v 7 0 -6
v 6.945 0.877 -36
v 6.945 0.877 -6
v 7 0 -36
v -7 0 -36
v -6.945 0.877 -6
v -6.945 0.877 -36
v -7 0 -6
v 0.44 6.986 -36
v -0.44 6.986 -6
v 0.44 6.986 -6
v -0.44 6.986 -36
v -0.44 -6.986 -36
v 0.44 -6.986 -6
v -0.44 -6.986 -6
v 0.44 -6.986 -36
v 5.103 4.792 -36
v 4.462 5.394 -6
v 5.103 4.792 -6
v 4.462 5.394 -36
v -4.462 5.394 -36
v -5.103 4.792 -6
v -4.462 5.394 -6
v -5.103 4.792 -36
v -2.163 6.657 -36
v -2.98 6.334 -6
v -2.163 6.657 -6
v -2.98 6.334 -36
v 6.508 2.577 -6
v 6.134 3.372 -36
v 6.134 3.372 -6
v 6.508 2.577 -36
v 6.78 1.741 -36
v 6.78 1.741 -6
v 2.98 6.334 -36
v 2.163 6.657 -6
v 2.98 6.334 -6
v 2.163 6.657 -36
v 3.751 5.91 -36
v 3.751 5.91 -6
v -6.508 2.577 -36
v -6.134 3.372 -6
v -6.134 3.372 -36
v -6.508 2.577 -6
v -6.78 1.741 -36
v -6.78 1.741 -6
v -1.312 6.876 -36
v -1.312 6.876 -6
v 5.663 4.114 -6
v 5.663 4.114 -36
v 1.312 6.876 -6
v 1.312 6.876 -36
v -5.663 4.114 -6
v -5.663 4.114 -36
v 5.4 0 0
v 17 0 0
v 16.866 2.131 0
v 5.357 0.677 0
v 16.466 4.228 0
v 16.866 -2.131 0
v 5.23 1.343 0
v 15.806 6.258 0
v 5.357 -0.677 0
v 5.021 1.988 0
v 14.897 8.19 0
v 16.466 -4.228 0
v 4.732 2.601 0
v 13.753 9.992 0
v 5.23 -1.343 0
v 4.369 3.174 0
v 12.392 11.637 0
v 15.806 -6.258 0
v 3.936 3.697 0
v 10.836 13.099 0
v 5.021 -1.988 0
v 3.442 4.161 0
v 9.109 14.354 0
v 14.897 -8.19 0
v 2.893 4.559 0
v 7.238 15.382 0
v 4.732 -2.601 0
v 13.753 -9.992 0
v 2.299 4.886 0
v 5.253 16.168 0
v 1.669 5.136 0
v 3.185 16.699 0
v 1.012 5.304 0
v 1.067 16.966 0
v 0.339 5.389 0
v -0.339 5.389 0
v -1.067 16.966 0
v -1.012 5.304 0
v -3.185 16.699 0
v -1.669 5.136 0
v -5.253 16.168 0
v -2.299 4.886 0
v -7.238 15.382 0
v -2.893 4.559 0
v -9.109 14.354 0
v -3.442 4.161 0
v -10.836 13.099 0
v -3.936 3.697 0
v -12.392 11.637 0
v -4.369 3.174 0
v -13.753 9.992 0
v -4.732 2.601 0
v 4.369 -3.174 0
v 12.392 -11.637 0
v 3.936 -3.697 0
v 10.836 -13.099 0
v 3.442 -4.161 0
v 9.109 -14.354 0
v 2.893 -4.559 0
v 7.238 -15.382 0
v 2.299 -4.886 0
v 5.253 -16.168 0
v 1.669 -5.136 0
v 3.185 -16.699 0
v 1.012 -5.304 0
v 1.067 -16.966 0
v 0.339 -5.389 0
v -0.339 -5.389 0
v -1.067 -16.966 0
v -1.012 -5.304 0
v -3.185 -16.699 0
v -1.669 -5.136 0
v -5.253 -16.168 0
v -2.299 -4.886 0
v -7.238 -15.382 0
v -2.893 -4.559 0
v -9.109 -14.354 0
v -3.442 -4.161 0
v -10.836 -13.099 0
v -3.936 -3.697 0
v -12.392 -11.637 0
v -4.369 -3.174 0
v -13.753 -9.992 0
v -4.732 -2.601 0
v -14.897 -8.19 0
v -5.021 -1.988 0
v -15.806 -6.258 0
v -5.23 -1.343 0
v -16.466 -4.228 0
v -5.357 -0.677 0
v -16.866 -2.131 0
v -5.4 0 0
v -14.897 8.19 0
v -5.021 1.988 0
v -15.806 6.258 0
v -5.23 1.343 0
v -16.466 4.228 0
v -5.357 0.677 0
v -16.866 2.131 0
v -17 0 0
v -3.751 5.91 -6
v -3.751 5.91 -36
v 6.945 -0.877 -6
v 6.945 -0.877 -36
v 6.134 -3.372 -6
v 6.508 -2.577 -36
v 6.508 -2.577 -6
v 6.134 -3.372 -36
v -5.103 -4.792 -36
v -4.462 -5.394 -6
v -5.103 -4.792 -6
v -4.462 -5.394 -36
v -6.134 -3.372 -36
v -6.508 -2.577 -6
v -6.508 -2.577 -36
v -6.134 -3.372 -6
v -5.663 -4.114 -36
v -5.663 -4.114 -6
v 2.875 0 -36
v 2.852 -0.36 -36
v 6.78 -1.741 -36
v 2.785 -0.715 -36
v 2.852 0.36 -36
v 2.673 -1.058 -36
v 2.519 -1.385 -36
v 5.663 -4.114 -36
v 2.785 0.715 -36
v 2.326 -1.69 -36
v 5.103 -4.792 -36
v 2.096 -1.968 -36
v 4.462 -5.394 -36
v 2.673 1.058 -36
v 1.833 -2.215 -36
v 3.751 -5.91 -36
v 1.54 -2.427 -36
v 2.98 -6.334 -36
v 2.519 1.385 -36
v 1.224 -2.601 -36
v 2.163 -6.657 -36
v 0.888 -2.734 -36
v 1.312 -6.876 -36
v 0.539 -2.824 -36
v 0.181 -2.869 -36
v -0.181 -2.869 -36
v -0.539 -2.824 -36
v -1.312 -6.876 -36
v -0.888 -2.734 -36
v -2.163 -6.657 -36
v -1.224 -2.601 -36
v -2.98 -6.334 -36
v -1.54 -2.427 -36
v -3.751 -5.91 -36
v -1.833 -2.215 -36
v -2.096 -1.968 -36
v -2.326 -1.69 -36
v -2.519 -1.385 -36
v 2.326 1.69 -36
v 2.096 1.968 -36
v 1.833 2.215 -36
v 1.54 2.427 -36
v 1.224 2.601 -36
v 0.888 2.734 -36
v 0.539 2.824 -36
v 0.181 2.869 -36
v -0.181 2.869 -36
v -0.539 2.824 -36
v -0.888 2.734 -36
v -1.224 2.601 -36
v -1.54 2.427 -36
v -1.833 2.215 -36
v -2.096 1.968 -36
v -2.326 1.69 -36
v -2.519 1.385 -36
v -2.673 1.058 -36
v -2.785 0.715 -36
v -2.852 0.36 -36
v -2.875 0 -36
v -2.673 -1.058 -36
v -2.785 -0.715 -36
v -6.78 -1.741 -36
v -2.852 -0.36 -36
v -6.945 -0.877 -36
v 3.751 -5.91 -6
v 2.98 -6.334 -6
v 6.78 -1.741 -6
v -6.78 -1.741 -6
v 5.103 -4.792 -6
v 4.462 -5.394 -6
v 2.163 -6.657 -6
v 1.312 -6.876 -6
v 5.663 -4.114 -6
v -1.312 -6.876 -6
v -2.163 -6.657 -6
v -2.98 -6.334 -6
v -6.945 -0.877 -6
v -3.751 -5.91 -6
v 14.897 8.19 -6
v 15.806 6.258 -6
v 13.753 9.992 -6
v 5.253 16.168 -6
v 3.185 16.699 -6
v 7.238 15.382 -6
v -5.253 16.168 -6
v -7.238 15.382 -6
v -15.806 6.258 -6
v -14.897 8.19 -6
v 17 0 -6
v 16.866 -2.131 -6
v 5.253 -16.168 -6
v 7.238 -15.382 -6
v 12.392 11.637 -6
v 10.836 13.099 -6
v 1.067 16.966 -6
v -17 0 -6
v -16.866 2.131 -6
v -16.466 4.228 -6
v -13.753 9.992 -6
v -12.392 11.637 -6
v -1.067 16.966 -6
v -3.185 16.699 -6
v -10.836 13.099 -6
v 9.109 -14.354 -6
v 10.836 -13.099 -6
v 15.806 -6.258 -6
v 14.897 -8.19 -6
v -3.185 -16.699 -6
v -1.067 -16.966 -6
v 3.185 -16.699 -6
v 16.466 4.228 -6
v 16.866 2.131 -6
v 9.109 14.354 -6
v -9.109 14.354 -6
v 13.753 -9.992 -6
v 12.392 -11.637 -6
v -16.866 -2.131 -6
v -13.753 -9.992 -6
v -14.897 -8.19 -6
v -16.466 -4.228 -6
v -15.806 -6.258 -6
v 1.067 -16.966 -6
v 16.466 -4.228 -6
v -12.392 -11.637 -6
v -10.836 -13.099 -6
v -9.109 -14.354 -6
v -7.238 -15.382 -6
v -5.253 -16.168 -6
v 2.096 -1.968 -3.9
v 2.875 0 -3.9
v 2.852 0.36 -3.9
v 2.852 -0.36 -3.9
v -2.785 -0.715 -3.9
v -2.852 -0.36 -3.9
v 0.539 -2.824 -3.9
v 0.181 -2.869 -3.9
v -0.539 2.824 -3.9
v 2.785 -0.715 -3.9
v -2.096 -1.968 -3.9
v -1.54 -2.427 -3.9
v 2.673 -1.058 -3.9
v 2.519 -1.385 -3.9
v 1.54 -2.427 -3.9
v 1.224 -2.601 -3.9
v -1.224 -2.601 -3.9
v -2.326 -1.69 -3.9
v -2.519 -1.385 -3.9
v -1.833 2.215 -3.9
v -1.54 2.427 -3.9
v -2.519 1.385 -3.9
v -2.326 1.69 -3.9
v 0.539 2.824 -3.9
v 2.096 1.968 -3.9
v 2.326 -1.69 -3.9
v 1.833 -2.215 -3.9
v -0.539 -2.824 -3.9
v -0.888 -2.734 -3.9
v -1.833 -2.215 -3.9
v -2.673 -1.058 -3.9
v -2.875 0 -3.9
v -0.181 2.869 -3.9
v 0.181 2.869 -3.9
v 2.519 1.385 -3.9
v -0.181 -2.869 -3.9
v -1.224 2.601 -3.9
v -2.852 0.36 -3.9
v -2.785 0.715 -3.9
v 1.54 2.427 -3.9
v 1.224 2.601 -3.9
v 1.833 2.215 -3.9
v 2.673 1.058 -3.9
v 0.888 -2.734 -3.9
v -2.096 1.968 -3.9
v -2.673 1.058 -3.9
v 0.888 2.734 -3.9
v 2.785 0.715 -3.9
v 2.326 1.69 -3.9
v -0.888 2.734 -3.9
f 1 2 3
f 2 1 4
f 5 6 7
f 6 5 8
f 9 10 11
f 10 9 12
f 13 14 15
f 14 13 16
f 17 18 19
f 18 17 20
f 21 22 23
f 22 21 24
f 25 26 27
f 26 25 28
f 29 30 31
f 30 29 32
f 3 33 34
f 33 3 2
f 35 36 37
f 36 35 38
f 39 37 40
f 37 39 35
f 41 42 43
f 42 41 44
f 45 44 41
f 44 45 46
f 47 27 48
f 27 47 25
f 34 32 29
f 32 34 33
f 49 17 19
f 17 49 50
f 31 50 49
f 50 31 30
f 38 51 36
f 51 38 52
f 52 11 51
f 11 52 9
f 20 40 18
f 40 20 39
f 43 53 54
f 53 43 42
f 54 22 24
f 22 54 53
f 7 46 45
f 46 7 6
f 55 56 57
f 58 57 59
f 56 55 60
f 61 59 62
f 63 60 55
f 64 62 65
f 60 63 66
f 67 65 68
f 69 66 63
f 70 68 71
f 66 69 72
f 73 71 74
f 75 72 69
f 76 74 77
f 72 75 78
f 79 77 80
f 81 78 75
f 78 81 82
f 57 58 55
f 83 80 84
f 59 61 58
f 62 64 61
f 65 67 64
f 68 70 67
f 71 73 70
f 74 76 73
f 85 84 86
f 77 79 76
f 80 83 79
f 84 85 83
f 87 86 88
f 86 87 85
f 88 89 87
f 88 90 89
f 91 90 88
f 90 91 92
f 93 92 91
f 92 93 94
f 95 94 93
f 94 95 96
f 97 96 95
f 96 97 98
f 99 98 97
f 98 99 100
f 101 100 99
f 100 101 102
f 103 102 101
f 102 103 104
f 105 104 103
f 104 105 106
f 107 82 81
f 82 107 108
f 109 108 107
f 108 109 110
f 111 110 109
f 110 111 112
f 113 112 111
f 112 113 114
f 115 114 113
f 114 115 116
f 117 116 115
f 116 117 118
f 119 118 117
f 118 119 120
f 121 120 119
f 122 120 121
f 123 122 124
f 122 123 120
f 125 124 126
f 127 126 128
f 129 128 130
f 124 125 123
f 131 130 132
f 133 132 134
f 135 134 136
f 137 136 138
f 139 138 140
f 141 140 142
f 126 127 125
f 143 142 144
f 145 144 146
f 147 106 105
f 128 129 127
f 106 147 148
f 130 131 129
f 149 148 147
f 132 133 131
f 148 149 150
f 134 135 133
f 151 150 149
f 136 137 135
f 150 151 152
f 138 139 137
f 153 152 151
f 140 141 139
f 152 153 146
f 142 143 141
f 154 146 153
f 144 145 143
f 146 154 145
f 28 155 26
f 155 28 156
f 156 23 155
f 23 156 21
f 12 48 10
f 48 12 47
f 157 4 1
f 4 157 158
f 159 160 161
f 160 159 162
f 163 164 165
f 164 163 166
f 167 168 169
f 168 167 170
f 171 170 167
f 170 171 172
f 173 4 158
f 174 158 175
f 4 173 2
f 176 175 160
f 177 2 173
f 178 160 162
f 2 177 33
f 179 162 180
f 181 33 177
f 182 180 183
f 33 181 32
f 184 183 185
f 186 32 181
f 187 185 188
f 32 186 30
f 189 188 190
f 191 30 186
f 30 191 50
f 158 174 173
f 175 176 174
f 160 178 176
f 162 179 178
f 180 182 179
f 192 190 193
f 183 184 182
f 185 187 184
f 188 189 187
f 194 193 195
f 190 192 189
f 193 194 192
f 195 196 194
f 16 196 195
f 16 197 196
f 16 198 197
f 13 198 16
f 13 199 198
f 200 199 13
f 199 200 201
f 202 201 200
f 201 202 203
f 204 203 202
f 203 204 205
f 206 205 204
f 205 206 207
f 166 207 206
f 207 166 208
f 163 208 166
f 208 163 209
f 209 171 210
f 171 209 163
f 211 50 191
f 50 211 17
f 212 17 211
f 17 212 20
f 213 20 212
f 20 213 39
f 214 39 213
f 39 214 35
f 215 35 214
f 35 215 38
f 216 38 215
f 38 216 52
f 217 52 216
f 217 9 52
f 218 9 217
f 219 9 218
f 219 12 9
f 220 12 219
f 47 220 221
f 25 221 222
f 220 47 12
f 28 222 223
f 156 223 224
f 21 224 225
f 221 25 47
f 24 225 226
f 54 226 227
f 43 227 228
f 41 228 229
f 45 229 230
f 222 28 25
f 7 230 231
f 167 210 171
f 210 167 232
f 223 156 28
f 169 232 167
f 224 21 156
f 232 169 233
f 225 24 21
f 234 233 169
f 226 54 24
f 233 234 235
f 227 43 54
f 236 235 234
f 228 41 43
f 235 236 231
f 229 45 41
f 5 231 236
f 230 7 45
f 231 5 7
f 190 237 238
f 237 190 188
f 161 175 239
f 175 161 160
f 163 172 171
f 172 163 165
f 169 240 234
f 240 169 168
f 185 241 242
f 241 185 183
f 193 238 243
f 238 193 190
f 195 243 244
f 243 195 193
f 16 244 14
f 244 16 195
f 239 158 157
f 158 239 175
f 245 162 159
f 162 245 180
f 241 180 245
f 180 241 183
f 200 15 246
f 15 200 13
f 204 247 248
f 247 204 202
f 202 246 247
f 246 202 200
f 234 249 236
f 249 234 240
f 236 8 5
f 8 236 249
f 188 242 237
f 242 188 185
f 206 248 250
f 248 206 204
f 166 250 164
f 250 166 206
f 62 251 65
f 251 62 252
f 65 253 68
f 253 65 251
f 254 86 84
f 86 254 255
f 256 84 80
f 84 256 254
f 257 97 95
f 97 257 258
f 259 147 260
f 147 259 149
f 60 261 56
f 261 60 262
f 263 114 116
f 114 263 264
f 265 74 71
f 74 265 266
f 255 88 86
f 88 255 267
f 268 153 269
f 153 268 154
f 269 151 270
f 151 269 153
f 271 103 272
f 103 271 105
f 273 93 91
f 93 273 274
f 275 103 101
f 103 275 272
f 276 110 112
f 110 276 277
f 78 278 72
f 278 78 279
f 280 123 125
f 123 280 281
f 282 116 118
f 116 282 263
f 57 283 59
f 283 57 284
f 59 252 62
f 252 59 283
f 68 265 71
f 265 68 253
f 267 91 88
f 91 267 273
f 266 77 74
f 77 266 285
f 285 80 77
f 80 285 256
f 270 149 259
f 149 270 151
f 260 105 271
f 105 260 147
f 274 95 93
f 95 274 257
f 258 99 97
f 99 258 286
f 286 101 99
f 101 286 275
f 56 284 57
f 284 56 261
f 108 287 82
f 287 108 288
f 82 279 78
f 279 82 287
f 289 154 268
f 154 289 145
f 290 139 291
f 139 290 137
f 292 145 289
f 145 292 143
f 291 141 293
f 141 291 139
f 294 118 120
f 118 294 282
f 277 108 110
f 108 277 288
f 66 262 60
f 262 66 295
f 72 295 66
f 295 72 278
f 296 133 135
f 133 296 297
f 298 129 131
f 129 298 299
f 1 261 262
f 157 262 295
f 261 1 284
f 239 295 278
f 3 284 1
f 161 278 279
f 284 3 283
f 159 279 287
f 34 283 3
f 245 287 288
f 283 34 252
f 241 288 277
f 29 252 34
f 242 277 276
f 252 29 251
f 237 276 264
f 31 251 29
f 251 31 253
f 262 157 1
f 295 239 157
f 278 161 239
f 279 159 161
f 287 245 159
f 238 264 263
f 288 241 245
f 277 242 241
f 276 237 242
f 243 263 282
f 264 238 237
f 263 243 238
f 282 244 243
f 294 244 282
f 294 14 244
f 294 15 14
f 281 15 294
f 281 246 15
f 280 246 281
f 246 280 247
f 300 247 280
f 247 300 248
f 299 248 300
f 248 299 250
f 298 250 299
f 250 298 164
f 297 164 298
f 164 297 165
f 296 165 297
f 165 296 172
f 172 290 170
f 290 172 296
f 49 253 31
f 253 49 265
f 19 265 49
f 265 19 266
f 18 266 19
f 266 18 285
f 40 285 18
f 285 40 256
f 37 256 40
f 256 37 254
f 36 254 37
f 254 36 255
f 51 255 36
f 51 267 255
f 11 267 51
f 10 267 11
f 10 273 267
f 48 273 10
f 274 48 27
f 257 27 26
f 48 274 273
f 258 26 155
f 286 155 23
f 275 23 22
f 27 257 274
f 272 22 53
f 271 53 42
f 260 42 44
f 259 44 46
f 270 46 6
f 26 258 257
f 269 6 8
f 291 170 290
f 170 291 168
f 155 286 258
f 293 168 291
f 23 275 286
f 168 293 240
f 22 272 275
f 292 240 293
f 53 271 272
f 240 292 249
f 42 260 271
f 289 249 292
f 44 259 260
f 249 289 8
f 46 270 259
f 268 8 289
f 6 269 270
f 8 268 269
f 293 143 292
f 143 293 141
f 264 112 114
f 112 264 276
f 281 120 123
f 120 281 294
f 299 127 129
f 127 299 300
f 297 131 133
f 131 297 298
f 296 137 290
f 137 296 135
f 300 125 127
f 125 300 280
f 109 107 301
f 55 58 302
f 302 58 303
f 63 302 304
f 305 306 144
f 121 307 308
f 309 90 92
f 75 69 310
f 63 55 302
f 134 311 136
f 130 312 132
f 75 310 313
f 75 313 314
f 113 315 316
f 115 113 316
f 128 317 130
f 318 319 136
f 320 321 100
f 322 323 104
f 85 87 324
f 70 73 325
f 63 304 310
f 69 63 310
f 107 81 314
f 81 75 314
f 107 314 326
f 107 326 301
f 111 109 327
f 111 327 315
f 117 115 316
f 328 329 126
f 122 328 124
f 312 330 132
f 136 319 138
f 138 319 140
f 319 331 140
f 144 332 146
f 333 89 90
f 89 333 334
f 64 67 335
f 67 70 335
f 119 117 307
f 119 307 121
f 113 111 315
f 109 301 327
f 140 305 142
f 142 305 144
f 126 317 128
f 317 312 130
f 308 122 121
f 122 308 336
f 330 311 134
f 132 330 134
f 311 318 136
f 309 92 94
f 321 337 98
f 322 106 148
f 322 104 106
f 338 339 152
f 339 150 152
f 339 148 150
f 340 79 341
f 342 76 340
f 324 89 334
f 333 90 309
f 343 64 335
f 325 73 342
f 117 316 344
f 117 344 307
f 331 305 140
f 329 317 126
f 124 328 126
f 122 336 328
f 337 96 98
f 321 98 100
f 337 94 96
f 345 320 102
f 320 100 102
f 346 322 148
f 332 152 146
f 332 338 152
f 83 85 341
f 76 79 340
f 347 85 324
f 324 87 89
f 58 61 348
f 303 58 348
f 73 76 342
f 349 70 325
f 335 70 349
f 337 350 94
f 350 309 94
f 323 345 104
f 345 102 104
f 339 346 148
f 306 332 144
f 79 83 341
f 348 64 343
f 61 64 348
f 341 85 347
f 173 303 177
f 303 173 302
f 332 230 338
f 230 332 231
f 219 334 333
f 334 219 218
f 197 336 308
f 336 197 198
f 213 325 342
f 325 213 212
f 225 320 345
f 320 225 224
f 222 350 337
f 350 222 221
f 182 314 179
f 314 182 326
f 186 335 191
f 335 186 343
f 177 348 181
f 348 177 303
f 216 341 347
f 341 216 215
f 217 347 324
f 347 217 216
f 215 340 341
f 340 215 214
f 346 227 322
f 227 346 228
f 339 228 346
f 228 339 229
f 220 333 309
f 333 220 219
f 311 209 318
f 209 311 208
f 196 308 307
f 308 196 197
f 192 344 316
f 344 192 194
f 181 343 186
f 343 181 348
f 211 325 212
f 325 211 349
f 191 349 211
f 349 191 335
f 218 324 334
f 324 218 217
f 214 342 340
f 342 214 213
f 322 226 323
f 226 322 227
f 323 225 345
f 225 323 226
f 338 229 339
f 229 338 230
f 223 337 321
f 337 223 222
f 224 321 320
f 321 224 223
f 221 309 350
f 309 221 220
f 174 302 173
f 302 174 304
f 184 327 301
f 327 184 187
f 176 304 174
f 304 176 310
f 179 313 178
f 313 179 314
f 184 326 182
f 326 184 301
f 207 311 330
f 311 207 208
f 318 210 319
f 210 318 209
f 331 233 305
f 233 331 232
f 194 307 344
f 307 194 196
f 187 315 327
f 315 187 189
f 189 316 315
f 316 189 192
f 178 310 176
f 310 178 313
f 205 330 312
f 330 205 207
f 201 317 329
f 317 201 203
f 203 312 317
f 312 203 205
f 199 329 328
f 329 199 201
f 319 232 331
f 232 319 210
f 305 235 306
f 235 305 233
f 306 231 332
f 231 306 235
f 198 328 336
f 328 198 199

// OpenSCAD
$fn = 50;


difference() {
	union() {
		translate(v = [0, 0, -36.0000000000]) {
			cylinder(h = 36, r = 7.0000000000);
		}
		translate(v = [0, 0, -6.0000000000]) {
			cylinder(h = 6, r = 17.0000000000);
		}
	}
	union() {
		translate(v = [0, 0, 0]) {
			rotate(a = [0, 0, 0]) {
				difference() {
					union() {
						#translate(v = [0, 0, -36.0000000000]) {
							cylinder(h = 36, r = 2.6000000000);
						}
						#translate(v = [0, 0, -3.9000000000]) {
							cylinder(h = 3.9000000000, r = 7.0000000000, r1 = 2.8750000000, r2 = 5.4000000000);
						}
						#translate(v = [0, 0, -36.0000000000]) {
							cylinder(h = 36, r = 2.8750000000);
						}
						#translate(v = [0, 0, -36.0000000000]) {
							cylinder(h = 36, r = 2.6000000000);
						}
					}
					union();
				}
			}
		}
	}
}
